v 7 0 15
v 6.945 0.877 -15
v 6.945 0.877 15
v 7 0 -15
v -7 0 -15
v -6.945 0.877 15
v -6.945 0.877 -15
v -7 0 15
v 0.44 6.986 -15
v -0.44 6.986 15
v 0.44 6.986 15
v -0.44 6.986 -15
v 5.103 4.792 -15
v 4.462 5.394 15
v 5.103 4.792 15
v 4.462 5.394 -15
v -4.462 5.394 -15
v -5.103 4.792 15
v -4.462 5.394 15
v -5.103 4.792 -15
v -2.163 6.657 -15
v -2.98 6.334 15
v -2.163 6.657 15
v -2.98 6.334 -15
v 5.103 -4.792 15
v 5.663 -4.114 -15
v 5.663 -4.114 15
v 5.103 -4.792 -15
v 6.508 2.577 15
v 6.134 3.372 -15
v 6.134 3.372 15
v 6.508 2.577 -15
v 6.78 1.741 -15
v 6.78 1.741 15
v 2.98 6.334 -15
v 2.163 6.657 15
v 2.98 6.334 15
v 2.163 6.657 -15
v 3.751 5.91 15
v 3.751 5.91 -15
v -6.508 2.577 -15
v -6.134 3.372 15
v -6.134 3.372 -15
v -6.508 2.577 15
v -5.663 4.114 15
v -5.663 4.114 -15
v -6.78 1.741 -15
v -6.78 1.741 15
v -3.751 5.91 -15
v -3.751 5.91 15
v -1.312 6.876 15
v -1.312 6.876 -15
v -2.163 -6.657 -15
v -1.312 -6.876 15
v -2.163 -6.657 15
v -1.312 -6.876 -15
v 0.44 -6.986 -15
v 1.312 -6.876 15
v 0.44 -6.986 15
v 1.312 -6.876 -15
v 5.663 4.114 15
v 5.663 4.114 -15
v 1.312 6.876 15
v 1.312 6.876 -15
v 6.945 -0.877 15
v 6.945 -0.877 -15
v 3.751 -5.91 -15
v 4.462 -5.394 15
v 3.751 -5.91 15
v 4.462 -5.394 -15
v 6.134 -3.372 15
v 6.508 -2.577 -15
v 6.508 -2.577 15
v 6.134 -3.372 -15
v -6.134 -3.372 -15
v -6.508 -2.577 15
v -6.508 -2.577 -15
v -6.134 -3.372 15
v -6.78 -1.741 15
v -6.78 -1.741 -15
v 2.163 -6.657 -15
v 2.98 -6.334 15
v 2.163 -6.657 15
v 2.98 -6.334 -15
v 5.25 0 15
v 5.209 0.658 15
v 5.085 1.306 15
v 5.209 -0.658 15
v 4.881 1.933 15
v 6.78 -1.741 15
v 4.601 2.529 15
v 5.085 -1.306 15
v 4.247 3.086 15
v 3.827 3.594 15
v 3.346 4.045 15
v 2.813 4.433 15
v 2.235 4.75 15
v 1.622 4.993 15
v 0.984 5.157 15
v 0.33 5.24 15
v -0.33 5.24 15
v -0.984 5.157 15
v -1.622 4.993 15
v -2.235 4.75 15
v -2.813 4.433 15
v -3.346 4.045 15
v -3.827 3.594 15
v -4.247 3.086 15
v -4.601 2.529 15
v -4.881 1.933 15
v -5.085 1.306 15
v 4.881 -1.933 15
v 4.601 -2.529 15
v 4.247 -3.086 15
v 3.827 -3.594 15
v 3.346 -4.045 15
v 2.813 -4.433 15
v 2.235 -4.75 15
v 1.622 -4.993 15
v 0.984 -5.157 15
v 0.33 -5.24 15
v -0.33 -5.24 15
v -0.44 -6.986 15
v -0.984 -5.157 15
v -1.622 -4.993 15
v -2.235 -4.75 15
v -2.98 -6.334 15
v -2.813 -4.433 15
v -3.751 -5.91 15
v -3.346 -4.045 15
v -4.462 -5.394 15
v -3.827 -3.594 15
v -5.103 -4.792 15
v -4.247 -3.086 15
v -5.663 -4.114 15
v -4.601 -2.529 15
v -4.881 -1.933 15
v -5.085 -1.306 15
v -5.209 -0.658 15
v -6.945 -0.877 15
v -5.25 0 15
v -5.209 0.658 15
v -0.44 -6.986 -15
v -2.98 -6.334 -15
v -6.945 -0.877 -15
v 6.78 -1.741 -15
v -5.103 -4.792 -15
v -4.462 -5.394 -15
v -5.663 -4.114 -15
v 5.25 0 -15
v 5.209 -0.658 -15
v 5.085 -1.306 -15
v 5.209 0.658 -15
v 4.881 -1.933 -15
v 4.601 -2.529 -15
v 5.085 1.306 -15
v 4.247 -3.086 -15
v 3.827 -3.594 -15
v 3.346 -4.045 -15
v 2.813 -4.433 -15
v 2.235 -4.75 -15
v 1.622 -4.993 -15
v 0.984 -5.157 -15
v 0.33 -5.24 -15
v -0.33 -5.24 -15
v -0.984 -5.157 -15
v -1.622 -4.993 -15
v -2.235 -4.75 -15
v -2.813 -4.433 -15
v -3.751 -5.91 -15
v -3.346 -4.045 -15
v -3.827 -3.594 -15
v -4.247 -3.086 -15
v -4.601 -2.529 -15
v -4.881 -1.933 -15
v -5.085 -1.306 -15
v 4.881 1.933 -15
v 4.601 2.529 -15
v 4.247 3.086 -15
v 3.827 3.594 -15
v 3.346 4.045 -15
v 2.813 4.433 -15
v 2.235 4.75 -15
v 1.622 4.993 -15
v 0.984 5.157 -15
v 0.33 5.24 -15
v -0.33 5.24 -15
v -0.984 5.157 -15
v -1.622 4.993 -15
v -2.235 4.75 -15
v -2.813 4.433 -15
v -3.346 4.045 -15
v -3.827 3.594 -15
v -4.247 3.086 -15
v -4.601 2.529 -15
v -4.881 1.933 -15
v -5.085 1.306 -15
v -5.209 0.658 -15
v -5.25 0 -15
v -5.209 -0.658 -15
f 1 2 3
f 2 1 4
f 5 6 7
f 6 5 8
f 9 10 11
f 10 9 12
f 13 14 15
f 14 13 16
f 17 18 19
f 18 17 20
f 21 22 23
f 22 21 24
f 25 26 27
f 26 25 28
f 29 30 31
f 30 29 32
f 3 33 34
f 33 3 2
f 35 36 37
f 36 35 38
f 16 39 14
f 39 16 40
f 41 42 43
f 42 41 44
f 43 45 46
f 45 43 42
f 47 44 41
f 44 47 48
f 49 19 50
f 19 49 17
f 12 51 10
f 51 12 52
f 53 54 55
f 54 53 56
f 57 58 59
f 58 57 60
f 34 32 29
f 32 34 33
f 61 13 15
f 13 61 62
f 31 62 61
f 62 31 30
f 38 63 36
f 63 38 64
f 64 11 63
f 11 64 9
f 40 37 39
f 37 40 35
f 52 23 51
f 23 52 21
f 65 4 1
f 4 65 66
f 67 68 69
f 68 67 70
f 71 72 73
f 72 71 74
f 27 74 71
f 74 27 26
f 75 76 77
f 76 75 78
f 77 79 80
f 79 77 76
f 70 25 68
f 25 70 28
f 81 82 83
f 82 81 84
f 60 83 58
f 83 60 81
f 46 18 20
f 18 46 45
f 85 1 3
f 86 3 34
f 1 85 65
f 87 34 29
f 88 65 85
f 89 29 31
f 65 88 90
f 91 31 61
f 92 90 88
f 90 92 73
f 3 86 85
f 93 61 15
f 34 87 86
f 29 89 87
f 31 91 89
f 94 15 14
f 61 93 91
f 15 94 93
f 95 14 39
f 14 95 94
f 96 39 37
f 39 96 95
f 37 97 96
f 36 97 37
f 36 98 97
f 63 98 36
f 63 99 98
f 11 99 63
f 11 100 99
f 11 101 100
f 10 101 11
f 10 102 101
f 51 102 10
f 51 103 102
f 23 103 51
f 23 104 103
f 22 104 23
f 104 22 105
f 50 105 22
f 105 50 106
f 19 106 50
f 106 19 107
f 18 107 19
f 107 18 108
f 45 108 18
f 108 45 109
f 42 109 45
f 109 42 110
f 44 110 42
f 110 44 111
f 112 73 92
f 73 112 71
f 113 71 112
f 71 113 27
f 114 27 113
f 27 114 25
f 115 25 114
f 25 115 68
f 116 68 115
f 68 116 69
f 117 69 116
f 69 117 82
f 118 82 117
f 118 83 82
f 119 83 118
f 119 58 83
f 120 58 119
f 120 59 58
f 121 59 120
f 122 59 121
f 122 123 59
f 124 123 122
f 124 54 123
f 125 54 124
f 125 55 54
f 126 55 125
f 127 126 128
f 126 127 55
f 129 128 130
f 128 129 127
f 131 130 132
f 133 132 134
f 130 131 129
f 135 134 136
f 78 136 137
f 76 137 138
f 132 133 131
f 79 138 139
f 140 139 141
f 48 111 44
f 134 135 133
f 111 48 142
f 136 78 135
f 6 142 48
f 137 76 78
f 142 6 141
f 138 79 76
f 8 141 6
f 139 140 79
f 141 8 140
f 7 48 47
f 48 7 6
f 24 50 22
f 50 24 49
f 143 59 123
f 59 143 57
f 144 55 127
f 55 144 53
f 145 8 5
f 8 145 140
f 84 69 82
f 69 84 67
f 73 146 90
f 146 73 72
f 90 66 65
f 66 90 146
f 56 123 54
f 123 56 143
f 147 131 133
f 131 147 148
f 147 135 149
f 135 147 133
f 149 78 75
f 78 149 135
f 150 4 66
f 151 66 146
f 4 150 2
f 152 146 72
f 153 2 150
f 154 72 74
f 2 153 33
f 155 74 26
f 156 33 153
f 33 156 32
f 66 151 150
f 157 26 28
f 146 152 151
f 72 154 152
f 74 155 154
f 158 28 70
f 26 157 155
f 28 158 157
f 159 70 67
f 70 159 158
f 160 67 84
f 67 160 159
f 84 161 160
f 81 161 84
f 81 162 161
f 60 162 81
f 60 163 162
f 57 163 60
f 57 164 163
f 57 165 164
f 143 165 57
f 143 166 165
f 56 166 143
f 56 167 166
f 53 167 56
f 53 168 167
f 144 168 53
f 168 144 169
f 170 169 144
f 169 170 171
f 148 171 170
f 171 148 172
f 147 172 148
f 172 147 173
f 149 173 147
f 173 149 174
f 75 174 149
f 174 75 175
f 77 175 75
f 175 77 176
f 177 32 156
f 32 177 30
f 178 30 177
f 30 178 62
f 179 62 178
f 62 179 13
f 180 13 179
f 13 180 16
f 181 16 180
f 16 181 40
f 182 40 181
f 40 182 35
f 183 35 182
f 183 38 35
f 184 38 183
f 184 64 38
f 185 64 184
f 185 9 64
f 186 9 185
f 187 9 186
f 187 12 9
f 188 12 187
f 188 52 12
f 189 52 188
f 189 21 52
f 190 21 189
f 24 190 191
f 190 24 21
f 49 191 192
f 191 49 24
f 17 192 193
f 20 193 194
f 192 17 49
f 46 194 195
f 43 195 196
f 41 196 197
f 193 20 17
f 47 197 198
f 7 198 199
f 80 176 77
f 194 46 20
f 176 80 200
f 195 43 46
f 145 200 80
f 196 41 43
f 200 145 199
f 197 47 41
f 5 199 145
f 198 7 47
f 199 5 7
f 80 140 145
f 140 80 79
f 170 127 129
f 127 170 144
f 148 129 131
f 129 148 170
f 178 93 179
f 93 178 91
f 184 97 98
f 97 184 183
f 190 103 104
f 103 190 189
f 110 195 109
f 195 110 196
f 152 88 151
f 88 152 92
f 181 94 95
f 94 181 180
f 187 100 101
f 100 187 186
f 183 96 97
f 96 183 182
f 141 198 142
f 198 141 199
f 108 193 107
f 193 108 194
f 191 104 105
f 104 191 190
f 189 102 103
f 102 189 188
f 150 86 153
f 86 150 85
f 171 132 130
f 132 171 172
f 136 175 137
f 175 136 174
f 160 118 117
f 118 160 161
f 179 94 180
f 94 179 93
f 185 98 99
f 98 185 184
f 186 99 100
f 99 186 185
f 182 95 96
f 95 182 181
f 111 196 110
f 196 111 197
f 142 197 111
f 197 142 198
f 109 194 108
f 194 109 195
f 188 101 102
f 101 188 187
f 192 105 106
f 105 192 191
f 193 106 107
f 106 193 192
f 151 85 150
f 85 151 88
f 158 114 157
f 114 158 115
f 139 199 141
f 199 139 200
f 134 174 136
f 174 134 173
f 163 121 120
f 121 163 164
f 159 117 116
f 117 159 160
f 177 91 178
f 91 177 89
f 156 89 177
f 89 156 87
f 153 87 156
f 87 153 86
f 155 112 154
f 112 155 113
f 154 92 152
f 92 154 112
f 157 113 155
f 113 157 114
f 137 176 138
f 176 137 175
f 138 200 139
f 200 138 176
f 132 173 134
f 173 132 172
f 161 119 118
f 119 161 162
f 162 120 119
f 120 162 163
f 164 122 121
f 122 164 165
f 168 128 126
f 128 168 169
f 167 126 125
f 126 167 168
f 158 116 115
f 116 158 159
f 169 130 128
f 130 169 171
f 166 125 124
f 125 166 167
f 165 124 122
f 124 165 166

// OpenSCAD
$fn = 50;


difference() {
	union() {
		translate(v = [0, 0, -15.0000000000]) {
			cylinder(h = 30, r = 7.0000000000);
		}
	}
	union() {
		translate(v = [0, 0, -100.0000000000]) {
			cylinder(h = 200, r = 5.2500000000);
		}
	}
}
